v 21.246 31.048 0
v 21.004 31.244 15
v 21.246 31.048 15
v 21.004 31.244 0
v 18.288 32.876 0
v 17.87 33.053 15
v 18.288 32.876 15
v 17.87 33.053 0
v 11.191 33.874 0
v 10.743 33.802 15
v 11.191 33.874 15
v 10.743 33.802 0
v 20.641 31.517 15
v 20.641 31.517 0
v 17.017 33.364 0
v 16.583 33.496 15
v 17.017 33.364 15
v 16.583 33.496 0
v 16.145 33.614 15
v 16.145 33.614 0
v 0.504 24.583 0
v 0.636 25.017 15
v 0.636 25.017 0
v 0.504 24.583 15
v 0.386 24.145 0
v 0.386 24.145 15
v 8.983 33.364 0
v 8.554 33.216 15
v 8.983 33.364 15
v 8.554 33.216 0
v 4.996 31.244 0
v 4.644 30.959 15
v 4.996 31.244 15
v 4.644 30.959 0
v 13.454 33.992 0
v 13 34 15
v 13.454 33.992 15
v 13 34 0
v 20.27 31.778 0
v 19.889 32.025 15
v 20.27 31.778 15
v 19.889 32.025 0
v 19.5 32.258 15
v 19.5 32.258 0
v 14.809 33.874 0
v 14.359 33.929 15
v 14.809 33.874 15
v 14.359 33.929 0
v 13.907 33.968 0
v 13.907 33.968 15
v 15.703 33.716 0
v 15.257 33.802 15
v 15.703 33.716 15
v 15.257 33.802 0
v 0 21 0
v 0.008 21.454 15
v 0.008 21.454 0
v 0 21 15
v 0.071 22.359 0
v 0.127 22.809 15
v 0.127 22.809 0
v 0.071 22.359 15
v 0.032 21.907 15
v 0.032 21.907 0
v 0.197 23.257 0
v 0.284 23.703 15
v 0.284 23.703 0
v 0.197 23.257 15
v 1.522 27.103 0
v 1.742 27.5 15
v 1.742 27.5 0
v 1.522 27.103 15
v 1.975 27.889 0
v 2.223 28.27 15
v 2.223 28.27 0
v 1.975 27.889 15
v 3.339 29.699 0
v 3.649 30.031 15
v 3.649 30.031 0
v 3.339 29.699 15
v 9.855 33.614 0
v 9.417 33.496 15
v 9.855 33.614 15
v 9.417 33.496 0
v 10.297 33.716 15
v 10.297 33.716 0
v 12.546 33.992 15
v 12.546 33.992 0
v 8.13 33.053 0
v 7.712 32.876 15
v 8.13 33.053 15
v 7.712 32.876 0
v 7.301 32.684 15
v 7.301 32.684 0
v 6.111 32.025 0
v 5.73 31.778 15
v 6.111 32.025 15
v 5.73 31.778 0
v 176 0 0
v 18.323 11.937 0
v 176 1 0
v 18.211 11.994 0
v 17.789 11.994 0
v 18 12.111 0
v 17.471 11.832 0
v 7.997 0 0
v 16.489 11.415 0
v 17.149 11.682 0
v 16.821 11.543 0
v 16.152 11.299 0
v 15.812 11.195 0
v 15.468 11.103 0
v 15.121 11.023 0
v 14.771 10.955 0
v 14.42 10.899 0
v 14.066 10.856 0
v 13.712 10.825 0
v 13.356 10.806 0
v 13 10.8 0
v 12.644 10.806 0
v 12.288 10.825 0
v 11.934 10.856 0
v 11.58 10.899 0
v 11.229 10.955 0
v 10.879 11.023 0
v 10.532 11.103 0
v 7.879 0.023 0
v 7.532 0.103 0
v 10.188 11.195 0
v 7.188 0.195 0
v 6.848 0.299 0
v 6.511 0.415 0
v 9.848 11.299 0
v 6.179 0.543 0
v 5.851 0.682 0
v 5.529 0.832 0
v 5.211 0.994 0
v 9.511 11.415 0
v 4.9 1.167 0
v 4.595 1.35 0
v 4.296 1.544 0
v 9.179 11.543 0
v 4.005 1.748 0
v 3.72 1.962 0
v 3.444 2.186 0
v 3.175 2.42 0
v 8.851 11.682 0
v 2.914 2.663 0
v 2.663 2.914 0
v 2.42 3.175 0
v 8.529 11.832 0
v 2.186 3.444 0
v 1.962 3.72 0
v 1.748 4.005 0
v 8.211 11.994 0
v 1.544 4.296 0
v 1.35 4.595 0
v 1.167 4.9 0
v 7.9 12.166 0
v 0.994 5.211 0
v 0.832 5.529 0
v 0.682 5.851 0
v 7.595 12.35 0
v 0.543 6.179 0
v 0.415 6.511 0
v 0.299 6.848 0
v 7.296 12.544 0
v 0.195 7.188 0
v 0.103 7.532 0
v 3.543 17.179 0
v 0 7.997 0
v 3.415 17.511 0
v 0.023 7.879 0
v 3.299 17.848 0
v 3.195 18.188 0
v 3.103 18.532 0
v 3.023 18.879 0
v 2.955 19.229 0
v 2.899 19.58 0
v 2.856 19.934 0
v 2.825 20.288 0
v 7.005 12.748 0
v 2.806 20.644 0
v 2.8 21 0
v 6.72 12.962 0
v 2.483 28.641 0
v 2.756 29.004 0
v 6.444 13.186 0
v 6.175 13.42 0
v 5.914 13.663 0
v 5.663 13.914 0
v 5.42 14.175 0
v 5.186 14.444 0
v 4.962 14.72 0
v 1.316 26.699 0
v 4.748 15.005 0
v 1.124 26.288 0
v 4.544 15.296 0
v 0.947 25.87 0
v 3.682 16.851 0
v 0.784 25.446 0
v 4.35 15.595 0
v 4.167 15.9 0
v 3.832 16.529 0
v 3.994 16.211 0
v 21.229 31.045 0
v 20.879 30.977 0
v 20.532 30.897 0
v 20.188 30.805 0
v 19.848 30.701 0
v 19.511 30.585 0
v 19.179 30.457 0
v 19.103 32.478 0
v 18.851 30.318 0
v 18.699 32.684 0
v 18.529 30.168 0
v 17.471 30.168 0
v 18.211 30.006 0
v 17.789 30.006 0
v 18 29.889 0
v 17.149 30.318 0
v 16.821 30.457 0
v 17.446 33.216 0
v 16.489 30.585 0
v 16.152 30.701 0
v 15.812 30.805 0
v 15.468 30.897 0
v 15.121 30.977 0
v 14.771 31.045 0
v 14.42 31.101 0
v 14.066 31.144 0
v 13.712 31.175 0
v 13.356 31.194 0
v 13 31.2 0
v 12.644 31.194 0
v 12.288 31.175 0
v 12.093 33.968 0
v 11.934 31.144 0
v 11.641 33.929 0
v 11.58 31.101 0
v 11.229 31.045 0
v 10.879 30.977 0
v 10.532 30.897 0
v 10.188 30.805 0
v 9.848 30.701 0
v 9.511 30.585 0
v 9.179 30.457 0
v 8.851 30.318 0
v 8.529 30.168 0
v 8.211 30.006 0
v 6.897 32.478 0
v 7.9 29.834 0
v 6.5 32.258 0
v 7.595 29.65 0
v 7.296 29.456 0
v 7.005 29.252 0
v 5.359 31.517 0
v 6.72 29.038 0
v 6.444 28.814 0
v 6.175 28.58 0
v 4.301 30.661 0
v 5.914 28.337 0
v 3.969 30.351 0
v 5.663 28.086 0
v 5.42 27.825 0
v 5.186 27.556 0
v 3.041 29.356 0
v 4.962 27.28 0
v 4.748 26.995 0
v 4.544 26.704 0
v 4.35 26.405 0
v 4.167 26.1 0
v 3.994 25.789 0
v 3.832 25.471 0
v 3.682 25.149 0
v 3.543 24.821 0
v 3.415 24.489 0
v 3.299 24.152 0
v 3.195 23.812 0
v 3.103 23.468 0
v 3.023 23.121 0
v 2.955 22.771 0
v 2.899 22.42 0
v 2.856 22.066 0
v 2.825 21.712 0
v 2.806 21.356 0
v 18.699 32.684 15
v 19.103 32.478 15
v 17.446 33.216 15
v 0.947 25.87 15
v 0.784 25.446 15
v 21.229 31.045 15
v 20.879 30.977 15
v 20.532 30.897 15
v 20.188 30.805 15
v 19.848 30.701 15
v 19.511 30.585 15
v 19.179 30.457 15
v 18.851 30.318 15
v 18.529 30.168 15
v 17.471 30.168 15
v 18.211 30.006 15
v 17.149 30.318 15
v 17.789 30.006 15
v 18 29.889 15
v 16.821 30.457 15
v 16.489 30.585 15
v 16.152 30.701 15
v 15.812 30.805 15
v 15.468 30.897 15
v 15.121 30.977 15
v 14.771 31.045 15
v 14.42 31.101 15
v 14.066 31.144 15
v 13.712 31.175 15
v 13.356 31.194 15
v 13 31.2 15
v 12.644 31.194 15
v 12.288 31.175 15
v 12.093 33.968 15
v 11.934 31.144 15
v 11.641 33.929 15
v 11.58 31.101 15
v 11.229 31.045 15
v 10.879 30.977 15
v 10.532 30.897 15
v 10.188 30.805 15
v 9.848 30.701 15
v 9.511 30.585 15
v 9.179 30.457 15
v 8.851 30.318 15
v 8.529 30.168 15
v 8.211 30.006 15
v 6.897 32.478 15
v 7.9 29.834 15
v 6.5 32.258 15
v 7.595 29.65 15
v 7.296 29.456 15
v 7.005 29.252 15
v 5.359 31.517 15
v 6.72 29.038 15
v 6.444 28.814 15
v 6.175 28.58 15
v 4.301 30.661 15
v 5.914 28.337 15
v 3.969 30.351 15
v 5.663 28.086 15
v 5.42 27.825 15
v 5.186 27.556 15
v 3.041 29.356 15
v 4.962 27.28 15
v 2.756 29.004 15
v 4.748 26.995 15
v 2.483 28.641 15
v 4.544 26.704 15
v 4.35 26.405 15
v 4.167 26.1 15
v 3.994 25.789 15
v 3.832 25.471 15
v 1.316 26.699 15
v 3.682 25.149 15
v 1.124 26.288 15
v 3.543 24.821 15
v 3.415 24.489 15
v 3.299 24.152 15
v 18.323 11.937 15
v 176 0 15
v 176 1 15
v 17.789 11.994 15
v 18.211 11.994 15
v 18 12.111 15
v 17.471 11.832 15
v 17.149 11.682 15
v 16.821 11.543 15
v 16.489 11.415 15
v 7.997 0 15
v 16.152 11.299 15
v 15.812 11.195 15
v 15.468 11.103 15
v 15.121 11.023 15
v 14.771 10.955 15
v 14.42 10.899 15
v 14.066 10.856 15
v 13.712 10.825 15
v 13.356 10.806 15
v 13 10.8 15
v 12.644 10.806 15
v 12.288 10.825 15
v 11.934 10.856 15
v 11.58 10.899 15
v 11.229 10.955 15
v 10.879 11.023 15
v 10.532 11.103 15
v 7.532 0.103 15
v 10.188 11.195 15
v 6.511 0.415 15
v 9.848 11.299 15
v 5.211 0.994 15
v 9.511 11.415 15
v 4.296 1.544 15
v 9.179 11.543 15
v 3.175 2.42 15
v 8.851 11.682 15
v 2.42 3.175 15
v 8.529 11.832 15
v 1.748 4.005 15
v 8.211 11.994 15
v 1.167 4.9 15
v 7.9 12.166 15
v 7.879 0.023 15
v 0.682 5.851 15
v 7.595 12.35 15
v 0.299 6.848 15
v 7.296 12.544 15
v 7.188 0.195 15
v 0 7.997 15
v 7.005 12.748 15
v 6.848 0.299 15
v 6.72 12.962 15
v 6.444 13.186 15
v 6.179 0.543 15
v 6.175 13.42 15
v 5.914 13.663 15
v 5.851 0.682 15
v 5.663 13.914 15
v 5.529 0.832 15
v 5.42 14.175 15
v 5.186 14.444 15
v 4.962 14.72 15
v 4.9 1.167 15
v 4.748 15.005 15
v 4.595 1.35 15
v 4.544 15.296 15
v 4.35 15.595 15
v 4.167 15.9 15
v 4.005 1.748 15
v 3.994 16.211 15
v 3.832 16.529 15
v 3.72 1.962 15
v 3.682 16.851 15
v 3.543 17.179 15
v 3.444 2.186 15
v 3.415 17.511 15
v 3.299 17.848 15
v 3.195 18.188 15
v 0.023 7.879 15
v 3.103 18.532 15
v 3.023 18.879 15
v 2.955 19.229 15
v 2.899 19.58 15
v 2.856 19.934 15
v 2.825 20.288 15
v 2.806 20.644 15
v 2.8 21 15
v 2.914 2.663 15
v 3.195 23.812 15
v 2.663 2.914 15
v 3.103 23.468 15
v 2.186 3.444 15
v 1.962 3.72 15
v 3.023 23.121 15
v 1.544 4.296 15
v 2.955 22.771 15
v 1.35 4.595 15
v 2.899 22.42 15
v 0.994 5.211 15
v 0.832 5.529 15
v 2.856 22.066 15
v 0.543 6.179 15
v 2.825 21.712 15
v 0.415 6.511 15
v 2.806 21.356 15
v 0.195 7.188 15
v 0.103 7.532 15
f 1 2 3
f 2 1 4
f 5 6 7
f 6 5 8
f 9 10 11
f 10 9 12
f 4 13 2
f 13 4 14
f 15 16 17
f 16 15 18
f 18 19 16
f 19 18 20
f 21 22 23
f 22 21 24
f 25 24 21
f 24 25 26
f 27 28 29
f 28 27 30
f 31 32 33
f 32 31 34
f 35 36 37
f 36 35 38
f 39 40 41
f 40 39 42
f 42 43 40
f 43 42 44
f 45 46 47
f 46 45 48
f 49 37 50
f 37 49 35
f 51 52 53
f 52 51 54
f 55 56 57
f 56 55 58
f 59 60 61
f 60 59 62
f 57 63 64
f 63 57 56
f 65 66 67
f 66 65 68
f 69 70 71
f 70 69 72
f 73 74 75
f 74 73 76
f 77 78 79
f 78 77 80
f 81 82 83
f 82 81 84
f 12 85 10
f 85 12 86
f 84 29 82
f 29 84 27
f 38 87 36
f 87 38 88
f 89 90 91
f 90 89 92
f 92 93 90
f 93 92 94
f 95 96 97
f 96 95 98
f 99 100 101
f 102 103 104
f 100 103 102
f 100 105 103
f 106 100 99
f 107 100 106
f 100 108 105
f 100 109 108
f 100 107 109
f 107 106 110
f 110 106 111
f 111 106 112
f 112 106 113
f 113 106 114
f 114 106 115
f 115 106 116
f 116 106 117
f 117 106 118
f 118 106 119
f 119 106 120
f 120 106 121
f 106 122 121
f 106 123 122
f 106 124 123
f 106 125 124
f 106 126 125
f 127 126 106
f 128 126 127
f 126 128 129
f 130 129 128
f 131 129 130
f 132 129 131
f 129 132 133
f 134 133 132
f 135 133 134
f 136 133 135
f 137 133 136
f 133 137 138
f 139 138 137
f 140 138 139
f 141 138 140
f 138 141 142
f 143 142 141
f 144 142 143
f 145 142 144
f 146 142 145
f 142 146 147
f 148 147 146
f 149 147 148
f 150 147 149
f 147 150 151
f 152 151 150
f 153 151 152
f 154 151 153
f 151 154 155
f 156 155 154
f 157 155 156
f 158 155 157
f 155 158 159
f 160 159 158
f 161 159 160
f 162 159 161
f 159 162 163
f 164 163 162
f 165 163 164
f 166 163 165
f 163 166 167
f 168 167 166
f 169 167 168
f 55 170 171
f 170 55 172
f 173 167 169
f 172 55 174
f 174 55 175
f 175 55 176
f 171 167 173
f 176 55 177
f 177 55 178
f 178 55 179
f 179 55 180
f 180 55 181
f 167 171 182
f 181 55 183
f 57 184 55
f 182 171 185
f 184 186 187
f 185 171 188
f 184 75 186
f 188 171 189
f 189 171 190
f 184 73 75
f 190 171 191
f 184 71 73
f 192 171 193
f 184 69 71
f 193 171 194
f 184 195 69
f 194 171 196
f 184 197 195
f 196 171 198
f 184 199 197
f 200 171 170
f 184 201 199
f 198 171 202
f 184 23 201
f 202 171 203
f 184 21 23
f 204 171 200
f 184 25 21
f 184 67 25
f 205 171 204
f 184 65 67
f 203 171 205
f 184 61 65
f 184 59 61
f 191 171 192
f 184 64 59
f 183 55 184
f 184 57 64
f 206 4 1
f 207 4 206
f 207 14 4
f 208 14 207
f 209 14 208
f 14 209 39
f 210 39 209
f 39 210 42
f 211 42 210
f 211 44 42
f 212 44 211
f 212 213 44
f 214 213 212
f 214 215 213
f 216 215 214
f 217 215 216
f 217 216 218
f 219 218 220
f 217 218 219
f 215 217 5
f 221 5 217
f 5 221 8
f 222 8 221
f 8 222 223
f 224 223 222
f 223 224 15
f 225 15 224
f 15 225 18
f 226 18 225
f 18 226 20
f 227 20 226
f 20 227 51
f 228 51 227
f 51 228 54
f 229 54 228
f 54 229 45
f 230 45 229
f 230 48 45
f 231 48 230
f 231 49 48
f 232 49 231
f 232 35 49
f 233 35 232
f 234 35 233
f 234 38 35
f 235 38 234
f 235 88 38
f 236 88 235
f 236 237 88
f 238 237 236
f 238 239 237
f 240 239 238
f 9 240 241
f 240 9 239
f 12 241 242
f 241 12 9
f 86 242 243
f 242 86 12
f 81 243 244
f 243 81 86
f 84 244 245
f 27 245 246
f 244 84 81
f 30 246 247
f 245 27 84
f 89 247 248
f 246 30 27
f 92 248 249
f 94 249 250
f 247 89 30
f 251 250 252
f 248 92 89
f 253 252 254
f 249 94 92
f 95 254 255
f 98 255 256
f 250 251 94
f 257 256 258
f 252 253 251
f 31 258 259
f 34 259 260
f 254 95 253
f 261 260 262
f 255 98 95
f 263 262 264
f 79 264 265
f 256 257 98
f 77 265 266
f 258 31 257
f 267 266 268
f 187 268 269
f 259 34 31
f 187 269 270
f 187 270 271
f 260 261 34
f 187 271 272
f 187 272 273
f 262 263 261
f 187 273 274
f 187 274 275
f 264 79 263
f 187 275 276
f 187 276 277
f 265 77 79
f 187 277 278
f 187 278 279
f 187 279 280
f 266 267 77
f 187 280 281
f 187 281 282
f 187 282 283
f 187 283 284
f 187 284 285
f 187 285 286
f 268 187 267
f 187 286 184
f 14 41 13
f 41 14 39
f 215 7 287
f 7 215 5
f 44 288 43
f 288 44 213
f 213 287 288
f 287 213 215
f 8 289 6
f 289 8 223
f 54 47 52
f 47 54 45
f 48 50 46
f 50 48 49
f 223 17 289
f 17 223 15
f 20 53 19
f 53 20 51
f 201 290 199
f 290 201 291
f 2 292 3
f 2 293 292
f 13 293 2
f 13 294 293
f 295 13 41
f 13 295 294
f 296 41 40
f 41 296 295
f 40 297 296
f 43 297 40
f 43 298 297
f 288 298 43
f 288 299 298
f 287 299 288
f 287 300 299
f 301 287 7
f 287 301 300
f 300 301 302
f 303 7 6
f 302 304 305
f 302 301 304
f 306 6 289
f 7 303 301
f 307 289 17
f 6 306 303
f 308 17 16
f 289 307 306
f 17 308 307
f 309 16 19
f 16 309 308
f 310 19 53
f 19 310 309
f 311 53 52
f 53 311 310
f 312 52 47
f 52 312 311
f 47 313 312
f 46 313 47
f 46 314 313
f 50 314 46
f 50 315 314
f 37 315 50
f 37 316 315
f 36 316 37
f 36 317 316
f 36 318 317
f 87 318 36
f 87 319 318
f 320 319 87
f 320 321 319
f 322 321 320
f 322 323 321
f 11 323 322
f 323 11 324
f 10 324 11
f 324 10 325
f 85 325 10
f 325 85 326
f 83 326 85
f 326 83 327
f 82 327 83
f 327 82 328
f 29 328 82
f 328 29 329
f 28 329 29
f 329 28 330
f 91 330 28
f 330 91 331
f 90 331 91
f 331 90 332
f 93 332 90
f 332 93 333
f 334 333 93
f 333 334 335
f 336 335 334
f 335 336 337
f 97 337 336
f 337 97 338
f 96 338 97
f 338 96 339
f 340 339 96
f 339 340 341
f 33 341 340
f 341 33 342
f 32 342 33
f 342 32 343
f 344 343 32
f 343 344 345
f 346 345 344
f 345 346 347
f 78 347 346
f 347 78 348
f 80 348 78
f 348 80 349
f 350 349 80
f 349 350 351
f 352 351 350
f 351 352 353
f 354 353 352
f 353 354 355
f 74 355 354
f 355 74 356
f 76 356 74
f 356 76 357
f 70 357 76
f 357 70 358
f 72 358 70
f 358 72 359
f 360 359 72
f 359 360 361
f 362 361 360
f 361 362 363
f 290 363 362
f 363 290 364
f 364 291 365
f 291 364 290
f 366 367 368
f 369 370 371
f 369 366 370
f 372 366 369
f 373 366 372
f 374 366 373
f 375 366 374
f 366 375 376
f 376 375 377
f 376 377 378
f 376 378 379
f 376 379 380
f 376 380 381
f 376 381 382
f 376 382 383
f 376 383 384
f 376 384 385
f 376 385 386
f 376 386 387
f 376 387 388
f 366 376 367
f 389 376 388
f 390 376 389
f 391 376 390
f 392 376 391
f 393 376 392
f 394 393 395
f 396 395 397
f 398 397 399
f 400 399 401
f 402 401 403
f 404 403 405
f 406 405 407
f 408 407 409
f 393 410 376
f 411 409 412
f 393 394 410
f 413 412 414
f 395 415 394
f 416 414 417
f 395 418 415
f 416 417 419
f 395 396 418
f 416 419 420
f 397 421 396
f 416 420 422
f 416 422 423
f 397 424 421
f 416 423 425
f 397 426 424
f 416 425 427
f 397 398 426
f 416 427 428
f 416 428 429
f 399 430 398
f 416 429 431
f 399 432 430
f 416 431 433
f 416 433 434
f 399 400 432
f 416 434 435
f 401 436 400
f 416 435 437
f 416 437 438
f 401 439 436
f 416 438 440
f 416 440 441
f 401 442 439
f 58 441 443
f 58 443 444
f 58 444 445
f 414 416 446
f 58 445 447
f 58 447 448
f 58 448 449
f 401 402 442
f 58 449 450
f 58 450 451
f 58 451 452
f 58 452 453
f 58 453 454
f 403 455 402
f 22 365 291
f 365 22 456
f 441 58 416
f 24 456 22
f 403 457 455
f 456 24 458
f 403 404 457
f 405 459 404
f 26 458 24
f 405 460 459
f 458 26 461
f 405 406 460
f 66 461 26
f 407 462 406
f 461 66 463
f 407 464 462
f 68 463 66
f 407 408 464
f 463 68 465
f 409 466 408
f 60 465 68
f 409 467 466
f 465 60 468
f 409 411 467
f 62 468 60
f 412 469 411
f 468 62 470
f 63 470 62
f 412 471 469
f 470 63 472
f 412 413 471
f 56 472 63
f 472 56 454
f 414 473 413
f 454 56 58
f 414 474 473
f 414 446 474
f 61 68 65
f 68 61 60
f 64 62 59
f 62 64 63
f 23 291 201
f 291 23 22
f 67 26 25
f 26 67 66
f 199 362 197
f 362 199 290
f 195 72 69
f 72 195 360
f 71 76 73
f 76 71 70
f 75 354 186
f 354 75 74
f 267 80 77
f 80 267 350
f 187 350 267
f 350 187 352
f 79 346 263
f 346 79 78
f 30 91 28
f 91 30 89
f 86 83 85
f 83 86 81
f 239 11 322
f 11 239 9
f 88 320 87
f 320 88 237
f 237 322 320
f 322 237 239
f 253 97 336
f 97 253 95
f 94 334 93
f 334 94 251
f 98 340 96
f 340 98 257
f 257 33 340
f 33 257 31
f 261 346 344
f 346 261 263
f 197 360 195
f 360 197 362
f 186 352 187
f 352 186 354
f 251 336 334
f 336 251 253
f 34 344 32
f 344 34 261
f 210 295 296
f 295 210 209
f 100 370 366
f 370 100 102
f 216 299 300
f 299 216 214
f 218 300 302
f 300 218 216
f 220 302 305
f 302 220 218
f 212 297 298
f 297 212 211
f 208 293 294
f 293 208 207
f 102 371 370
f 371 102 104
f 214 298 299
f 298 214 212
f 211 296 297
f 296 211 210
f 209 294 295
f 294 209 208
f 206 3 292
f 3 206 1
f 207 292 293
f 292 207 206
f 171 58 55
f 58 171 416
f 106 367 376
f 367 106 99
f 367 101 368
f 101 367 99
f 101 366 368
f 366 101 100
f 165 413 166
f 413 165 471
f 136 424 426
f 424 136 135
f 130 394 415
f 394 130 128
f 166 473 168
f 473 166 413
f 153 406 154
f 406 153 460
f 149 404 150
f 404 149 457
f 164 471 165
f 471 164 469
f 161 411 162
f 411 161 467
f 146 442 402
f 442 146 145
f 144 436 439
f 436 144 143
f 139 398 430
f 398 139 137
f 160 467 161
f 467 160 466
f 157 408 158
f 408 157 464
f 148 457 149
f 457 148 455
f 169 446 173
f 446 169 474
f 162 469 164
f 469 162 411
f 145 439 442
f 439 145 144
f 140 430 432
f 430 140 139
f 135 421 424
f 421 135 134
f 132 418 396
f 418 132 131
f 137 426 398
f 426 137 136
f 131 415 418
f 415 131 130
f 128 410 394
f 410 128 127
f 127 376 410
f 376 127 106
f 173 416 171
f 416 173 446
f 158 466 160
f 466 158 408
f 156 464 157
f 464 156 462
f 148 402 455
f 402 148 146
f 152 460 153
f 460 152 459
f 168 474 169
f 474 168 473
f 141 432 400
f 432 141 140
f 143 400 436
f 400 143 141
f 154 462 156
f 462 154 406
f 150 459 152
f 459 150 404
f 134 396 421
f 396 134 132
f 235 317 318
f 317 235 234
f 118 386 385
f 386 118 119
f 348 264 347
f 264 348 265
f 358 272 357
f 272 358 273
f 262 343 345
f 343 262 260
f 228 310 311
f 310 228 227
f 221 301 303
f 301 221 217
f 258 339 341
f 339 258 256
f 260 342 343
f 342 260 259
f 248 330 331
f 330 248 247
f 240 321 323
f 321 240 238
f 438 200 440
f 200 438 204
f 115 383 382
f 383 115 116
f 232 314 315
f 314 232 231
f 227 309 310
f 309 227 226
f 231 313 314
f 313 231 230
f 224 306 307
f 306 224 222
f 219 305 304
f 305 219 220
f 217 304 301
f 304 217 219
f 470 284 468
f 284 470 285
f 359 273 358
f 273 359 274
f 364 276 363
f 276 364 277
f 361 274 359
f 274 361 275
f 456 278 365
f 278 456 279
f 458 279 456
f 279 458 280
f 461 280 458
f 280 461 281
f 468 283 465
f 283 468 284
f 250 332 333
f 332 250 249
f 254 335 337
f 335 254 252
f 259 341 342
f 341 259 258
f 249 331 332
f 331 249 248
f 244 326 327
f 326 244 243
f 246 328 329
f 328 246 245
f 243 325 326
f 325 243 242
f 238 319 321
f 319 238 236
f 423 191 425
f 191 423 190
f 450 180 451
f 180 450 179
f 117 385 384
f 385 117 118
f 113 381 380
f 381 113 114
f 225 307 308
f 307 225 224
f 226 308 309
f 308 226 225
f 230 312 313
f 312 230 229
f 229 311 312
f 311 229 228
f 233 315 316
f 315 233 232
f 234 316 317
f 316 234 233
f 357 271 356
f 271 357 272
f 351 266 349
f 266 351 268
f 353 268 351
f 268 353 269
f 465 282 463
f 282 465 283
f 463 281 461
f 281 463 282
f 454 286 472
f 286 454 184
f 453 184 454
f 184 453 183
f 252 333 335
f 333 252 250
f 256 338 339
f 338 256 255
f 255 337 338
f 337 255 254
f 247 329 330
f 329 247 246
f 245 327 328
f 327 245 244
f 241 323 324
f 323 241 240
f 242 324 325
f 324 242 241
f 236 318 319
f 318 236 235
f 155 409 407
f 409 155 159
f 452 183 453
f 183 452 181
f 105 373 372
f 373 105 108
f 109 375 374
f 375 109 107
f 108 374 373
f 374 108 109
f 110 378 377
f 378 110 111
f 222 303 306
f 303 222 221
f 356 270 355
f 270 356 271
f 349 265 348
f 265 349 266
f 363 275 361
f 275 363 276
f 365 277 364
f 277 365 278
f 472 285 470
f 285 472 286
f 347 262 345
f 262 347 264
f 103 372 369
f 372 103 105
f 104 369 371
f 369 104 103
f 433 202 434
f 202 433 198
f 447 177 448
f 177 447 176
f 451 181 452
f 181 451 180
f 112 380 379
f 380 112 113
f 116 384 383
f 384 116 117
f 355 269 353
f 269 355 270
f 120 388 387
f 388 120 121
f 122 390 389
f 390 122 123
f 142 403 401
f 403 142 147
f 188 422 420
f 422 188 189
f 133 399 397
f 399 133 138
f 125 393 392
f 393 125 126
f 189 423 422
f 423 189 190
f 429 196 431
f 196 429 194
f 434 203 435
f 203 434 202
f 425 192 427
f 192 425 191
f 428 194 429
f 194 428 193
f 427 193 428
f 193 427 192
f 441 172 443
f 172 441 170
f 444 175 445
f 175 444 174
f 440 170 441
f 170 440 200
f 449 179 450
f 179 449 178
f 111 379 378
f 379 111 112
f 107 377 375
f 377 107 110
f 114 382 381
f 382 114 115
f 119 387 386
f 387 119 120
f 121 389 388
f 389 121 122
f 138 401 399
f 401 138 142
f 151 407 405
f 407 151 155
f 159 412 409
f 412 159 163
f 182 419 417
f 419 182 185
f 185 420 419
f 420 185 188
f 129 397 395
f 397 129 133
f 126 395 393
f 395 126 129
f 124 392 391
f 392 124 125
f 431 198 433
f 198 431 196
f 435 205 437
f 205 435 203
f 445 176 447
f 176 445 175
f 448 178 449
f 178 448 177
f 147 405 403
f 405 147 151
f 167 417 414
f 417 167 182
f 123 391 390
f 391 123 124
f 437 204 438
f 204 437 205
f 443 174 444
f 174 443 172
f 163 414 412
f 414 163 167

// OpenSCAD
nozzle_diameter = 0.4;

hose_diameter = 20;
clamp_wall_thickness = 3;
clamp_thickness = 15;
spike_length = 175;
spike_width = 8;

$fn = 180;

difference() {
    union() {
        translate([hose_diameter / 2 + clamp_wall_thickness, spike_width + hose_diameter / 2 + clamp_wall_thickness, 0]) {
                difference() {
                    cylinder(d = hose_diameter + (clamp_wall_thickness * 2), h = clamp_thickness);
                    translate([hose_diameter / 2, 0, 0])
                        cylinder(d = hose_diameter + nozzle_diameter, h = clamp_thickness);
                }
        }
        hull() {
#            cube([clamp_wall_thickness, clamp_wall_thickness + (hose_diameter / 2), clamp_thickness]);
            translate([spike_length, 0, 0]) cube([1, 1, clamp_thickness]);
        }
        cube([clamp_wall_thickness, clamp_wall_thickness + spike_width + (hose_diameter / 2), clamp_thickness]);
    }
    translate([hose_diameter / 2 + clamp_wall_thickness, spike_width + hose_diameter / 2 + clamp_wall_thickness, 0]) {
        cylinder(d = hose_diameter + nozzle_diameter, h = clamp_thickness);
    }
    
    intersection() {
        difference() {
            cube([hose_diameter + (clamp_wall_thickness * 2), hose_diameter + (clamp_wall_thickness * 2), clamp_thickness]);
            translate([hose_diameter / 2, hose_diameter / 2, 0]) 
                cylinder(d = hose_diameter + nozzle_diameter, h = clamp_thickness);
        }
        cube([spike_width, spike_width, clamp_thickness]);
    }
    
    
}
